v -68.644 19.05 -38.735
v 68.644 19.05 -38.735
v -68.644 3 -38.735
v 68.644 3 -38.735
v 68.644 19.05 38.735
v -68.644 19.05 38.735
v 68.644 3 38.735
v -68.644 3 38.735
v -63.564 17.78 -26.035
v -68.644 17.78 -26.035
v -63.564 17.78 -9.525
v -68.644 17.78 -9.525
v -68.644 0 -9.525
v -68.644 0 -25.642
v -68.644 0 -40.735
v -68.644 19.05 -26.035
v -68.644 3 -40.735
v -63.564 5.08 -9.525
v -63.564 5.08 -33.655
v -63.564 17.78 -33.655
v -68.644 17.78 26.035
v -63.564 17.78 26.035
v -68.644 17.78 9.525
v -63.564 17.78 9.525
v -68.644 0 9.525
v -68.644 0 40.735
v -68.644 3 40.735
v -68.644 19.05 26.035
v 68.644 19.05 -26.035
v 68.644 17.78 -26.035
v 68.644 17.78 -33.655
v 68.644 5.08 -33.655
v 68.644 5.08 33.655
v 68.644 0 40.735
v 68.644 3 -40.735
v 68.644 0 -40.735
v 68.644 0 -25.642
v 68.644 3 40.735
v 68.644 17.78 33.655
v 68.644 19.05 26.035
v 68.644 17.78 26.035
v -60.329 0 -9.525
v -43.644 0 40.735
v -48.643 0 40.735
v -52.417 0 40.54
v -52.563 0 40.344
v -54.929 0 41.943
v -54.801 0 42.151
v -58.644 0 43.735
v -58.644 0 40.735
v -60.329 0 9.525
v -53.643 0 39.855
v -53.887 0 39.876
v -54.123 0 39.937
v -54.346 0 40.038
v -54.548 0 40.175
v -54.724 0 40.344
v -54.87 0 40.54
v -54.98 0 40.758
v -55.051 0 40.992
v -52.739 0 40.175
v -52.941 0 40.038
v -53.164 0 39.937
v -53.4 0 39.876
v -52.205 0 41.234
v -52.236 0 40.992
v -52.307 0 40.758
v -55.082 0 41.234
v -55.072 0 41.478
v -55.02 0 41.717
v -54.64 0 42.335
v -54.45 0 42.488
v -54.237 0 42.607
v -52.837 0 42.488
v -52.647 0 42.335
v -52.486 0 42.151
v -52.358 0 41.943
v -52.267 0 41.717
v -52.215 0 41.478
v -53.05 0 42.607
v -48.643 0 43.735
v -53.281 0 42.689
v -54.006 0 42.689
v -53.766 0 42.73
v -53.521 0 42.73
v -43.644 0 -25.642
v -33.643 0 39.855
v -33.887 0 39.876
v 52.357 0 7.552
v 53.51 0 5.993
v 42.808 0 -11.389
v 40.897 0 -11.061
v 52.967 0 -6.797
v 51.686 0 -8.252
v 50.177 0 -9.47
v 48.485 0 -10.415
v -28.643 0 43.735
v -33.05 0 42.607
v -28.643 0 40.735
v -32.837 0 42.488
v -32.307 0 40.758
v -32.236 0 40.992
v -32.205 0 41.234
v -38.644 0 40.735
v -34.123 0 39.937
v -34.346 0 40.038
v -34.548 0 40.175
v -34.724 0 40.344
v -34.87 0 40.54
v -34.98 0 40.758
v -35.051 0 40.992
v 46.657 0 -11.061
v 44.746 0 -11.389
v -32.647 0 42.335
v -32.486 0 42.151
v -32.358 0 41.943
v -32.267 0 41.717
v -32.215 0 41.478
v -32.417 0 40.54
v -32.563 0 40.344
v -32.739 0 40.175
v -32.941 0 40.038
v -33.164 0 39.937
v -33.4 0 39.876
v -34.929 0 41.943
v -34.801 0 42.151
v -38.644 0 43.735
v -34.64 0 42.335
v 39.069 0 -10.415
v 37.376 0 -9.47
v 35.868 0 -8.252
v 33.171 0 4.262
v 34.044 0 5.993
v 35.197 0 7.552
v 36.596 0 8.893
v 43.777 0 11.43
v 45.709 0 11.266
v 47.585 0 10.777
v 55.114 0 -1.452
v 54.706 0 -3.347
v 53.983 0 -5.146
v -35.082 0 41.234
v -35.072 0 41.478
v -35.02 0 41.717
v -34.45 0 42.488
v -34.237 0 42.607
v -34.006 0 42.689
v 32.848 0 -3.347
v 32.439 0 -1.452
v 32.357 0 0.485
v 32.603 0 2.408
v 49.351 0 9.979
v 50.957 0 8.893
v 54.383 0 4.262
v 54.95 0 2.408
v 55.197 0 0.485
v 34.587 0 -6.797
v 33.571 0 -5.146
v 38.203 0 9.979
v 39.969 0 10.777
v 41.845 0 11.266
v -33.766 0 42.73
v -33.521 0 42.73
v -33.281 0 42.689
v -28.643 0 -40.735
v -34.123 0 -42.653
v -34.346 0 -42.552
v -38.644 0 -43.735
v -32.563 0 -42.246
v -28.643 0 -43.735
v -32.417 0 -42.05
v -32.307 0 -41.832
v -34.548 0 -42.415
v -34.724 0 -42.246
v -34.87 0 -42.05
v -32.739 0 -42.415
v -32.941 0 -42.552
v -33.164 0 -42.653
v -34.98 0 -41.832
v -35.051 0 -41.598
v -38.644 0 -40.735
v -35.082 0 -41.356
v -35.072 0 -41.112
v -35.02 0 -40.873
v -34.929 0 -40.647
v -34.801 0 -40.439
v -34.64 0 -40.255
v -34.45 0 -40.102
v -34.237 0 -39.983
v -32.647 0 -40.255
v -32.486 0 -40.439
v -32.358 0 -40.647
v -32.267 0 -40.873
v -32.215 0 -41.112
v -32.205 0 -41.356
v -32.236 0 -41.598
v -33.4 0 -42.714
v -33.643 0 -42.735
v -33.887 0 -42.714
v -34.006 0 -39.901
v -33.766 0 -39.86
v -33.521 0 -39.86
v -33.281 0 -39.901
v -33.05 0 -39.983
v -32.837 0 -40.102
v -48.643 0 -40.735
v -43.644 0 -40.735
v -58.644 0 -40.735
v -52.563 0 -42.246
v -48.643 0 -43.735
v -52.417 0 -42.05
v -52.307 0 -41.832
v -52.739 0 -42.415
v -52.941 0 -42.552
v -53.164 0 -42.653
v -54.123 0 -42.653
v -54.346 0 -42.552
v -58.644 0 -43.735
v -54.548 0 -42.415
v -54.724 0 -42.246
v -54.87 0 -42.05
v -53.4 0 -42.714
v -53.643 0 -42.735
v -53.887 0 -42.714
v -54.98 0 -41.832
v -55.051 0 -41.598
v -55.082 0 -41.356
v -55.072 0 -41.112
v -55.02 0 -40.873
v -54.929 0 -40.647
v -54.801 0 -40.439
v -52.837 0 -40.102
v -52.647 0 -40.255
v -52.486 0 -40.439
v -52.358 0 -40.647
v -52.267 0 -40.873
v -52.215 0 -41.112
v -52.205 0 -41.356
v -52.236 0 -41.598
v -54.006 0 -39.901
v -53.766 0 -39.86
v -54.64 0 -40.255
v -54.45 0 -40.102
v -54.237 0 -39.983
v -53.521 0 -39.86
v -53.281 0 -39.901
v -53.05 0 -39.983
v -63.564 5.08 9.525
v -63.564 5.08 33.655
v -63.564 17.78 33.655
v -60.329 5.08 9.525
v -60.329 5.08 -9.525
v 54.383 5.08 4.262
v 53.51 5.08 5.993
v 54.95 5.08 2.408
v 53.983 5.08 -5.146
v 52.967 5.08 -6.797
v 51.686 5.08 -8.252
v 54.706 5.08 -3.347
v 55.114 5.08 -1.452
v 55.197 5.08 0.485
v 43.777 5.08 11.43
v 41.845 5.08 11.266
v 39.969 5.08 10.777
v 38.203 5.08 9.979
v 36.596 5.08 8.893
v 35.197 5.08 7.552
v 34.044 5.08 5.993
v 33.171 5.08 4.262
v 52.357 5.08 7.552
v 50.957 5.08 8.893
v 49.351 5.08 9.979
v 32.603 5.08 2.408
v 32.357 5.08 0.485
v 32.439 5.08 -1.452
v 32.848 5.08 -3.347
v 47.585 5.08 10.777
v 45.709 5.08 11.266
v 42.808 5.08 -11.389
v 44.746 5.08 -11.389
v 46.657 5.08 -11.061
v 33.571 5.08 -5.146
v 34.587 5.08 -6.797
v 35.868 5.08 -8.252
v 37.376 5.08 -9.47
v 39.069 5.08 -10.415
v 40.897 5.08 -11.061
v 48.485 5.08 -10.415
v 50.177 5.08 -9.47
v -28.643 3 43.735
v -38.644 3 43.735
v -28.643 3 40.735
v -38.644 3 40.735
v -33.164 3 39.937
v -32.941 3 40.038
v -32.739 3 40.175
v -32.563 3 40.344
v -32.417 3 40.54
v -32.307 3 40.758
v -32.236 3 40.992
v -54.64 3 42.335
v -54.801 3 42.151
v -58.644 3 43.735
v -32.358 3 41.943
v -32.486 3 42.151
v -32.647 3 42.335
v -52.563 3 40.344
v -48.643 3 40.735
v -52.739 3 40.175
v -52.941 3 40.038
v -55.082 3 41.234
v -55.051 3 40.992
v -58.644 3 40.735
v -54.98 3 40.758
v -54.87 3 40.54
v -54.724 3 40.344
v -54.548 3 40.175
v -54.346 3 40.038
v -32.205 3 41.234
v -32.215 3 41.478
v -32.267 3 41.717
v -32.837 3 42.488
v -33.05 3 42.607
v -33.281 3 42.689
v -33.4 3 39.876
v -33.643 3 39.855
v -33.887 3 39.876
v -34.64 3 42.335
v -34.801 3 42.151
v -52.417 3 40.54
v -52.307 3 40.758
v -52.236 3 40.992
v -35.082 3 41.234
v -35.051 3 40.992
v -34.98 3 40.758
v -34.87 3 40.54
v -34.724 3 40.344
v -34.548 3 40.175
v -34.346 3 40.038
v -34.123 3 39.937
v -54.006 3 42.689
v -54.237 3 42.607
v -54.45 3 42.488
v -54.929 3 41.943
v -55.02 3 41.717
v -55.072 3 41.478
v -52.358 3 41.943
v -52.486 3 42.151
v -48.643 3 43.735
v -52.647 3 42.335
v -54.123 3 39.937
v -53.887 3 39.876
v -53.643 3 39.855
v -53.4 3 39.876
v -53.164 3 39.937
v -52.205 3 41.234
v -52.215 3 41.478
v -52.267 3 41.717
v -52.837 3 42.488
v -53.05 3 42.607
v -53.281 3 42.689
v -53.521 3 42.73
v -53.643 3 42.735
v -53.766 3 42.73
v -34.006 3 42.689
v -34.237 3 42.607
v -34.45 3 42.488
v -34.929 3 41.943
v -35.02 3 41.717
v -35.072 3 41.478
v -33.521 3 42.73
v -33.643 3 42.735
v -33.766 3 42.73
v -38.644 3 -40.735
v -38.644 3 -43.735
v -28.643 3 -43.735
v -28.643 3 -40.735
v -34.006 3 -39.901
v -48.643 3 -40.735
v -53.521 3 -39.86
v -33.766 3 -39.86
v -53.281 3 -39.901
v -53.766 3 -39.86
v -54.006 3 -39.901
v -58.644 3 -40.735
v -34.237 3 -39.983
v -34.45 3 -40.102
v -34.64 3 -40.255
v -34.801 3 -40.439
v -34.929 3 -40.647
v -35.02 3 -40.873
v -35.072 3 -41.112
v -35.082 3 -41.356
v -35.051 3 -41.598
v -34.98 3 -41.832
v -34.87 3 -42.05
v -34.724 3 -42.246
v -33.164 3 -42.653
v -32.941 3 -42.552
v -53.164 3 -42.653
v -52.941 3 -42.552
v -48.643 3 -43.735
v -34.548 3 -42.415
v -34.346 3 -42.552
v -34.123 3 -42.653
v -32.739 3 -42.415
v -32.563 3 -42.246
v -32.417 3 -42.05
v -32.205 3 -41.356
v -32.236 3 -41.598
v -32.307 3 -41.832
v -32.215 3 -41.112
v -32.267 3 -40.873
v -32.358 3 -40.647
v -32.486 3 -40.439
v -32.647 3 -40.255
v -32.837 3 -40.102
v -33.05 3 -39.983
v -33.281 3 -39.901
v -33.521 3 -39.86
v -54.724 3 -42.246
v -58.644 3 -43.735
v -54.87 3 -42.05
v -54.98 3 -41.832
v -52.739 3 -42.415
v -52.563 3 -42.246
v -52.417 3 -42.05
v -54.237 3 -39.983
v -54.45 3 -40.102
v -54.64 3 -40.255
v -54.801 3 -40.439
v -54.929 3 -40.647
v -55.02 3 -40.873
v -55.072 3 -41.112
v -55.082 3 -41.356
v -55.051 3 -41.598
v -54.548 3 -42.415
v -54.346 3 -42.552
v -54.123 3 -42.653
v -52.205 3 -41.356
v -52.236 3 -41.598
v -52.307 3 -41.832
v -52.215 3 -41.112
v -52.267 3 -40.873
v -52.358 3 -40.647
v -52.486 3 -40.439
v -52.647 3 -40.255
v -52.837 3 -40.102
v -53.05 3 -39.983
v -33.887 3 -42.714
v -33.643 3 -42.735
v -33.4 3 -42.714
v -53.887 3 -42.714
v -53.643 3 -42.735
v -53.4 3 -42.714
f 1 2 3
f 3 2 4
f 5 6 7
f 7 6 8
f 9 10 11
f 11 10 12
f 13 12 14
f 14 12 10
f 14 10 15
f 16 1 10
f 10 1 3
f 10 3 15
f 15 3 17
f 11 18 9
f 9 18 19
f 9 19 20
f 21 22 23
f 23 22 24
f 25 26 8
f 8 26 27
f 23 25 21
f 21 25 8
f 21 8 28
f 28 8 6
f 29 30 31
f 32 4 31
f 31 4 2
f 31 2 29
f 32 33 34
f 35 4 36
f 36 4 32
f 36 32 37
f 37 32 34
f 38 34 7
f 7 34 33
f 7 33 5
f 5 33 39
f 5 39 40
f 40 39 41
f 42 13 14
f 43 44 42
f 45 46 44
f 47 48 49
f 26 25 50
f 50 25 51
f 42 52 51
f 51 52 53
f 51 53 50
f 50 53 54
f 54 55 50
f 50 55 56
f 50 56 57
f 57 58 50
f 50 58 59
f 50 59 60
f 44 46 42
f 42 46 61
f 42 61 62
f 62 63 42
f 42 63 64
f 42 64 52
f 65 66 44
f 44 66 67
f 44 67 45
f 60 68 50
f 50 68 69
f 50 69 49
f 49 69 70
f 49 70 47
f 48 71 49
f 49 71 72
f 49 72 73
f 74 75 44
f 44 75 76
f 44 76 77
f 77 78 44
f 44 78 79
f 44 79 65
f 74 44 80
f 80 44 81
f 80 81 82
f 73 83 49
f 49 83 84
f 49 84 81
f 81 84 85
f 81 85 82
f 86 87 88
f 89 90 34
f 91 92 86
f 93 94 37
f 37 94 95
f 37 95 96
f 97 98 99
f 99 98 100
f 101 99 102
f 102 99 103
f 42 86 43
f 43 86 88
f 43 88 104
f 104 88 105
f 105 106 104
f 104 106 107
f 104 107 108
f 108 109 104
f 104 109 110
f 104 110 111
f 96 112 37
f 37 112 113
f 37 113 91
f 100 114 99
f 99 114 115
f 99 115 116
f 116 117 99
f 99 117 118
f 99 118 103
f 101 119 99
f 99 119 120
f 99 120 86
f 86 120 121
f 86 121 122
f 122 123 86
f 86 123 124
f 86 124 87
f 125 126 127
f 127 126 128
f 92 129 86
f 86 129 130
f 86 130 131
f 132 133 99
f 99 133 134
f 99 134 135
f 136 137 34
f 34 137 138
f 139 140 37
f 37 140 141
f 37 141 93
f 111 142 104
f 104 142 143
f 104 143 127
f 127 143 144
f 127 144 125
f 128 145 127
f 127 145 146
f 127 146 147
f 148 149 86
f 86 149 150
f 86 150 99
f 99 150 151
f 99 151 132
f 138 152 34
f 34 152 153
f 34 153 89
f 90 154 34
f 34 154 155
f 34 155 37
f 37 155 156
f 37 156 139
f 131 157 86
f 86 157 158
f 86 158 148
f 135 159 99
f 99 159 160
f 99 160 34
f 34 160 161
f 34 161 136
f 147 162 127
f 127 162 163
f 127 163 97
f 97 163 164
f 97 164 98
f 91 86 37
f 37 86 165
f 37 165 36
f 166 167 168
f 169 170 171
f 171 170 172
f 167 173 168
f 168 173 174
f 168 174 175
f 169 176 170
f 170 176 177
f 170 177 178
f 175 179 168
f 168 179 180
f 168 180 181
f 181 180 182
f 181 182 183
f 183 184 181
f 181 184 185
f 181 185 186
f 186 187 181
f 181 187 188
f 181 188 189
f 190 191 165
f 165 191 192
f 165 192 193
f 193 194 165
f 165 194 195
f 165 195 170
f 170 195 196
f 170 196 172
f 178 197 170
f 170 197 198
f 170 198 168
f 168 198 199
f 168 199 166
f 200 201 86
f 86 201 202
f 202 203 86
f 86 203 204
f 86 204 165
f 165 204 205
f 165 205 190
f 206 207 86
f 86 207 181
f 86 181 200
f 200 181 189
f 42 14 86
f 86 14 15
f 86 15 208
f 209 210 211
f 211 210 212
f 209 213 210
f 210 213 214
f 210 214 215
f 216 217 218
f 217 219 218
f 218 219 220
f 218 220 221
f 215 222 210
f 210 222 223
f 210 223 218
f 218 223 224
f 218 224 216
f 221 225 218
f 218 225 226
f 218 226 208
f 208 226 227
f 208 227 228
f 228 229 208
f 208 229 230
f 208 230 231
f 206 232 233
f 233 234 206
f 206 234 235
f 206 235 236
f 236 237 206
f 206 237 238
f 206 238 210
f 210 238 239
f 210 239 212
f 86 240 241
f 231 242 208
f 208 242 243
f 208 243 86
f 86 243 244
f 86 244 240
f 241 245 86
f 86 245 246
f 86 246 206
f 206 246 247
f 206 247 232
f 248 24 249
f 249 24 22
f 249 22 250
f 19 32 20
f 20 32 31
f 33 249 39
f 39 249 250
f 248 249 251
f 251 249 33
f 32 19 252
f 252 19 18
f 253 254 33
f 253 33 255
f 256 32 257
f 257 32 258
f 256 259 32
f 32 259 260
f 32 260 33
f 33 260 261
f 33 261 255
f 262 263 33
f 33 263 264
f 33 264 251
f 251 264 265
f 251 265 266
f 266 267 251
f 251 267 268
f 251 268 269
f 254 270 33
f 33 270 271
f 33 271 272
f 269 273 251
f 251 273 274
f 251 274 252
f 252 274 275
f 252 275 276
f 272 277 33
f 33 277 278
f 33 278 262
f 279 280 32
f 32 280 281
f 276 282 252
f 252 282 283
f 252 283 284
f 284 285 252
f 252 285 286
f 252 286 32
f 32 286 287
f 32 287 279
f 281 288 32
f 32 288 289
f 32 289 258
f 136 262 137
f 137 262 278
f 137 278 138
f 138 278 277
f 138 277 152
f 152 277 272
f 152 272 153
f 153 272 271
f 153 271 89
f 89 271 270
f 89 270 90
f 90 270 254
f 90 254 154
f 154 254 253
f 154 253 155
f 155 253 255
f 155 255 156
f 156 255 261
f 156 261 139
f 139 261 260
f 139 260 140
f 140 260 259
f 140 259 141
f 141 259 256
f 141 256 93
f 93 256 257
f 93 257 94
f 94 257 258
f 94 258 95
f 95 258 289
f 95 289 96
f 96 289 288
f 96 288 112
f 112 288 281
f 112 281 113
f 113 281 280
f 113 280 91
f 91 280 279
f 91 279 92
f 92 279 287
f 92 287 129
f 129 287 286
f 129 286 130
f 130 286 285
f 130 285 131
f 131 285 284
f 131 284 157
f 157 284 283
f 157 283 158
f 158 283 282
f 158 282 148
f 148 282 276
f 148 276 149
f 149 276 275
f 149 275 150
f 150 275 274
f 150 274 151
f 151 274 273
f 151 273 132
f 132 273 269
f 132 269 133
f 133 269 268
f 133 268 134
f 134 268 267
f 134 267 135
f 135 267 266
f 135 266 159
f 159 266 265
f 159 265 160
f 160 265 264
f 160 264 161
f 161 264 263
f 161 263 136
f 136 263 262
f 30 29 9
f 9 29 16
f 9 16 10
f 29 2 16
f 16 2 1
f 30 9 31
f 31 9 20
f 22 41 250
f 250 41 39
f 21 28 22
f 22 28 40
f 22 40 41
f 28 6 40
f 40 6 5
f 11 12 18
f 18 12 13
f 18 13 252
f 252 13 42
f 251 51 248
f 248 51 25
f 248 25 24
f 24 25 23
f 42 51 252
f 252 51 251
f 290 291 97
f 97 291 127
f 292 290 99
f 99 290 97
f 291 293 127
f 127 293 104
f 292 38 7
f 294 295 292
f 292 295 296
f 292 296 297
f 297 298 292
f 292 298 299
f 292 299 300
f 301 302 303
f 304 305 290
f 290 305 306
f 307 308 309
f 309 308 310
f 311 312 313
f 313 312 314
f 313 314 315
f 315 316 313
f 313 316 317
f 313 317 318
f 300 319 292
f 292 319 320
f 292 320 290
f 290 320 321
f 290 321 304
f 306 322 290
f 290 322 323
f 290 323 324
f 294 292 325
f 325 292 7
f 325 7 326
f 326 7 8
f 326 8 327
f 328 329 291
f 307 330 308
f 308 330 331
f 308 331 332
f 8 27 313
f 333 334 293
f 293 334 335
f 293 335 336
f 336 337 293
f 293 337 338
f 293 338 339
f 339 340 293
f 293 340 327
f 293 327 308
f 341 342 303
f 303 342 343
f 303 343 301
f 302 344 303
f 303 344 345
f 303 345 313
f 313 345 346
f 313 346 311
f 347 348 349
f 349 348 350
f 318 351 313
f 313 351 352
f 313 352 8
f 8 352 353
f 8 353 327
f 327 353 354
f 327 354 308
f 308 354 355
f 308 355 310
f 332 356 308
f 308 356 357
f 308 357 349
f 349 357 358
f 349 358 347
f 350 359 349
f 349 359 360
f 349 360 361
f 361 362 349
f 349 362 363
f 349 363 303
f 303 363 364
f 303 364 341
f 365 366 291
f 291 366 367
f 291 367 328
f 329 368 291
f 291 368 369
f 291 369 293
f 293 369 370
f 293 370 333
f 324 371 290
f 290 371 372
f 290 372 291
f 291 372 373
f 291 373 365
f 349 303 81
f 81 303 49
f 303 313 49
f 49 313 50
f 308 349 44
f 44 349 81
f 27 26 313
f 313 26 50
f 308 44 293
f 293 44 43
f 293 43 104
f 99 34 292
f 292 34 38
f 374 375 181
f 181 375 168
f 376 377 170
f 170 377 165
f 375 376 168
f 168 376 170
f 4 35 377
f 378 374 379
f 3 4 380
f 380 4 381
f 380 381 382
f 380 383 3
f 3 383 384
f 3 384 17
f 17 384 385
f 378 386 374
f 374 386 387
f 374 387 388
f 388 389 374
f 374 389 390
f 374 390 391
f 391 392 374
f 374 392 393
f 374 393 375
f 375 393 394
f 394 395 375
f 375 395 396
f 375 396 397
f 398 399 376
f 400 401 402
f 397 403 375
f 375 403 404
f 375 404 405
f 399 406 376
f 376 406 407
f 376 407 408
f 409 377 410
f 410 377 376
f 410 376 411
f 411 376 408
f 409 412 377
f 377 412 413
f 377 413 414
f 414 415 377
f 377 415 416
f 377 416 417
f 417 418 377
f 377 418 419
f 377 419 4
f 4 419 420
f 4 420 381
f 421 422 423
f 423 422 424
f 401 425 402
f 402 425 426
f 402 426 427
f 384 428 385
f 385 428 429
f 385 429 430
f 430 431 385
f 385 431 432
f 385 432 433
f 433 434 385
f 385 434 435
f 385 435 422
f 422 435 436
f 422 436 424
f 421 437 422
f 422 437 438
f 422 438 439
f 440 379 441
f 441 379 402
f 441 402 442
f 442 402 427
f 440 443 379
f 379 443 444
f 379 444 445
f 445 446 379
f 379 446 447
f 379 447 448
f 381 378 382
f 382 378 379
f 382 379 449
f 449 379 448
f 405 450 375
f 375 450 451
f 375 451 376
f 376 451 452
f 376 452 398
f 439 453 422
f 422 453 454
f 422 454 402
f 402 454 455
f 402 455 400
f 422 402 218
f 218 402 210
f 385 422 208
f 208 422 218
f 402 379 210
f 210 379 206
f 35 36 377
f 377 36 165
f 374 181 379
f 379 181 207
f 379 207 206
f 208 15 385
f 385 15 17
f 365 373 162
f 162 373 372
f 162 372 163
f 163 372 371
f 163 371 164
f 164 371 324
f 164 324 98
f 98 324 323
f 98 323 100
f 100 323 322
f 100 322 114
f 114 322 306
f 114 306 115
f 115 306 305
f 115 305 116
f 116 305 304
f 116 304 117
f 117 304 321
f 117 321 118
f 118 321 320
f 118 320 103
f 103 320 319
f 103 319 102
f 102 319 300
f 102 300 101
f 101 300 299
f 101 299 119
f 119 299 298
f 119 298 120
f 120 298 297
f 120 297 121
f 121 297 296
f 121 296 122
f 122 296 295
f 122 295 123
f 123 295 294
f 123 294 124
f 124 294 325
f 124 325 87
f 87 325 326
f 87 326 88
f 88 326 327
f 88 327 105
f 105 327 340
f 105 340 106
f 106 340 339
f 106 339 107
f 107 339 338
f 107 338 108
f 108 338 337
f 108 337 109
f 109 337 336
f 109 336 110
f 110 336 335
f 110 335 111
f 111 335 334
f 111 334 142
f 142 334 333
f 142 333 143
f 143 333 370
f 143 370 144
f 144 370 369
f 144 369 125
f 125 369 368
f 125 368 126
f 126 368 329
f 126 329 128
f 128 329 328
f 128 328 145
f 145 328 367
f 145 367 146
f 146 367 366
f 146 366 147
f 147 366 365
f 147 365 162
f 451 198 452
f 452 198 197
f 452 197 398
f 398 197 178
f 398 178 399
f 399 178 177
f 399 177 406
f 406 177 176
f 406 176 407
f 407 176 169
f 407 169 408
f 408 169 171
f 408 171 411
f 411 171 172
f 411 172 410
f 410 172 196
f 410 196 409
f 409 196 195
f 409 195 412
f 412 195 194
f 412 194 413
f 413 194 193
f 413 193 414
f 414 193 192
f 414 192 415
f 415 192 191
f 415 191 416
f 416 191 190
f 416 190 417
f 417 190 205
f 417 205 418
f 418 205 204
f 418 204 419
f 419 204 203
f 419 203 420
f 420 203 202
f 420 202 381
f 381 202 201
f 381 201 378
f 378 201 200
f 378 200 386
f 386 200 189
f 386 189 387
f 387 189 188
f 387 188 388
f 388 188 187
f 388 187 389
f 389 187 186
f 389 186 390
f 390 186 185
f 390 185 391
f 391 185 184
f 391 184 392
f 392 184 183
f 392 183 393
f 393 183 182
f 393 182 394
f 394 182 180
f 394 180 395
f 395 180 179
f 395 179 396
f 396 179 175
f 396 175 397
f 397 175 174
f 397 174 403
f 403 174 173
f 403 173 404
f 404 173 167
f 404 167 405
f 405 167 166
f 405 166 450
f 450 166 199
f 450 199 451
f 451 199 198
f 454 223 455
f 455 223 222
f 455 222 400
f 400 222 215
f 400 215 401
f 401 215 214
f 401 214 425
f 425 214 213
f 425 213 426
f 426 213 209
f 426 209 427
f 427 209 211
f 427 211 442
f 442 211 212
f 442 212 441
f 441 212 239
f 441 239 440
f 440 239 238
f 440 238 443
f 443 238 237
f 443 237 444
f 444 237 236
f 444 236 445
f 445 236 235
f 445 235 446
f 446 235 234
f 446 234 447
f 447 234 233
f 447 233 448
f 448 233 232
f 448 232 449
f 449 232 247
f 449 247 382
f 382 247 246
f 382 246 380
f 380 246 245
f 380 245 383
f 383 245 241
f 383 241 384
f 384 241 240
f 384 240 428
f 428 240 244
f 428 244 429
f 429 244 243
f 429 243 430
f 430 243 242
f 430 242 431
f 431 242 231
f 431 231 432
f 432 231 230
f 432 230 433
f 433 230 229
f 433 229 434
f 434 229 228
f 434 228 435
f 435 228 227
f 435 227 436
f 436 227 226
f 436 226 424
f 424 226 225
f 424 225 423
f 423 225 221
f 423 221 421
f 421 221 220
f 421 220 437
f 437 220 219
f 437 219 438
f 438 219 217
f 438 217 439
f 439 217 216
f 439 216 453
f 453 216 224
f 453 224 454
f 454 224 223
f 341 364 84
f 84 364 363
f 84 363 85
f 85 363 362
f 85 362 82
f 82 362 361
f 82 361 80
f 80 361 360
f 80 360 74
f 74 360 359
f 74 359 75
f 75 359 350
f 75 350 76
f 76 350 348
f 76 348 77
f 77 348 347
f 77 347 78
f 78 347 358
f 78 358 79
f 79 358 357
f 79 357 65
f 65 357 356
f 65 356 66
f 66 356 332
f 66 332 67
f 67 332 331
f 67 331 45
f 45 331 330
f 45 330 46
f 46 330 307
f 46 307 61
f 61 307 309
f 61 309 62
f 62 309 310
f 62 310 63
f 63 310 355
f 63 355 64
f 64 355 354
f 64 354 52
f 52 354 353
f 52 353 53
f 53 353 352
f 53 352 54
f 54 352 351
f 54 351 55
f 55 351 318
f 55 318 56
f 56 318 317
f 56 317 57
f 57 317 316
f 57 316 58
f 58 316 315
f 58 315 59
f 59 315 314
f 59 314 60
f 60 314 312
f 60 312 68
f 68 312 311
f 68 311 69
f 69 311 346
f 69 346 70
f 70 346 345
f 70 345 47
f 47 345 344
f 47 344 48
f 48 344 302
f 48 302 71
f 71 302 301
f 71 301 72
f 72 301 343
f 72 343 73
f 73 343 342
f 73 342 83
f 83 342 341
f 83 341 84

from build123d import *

# Parameters (mm, degrees)
SKETCH1_W           = 137.287
SKETCH1_H           = 77.47
BOSS_EXTRUDE1_DEPTH = 17.78
SKETCH2_W           = 132.207
SKETCH2_H           = 67.31
CUT_EXTRUDE1_DEPTH  = 12.7
SKETCH4_R           = 11.43
CUT_EXTRUDE2_DEPTH  = 80.834956737
SKETCH5_W           = 137.287
SKETCH5_H           = 12.7
BOSS_EXTRUDE2_DEPTH = 1.27
SKETCH6_W           = 8.314266468
SKETCH6_H           = 19.05
CUT_EXTRUDE3_DEPTH  = 81.798878193
SKETCH9_W           = 137.287
SKETCH9_H           = 2
SKETCH9_W_2         = 10
SKETCH9_H_2         = 3
BOSS_EXTRUDE4_DEPTH = 3
SKETCH10_R          = 1.44
CUT_EXTRUDE4_DEPTH  = 84.591762855


with BuildPart() as part:
    # Sketch1 → Boss-Extrude1 (new body)
    with BuildSketch(Plane(origin=(0, 0, 0), x_dir=(1, 0, 0), z_dir=(0, 1, 0))):
        Rectangle(SKETCH1_W, SKETCH1_H)
    extrude(amount=BOSS_EXTRUDE1_DEPTH)

    # Sketch2 → Cut-Extrude1 (cut)
    with BuildSketch(Plane(origin=(0, 17.78, 0), x_dir=(1, 0, 0), z_dir=(0, 1, 0))):
        with Locations((2.54, 0)):
            Rectangle(SKETCH2_W, SKETCH2_H)
    extrude(amount=-CUT_EXTRUDE1_DEPTH, mode=Mode.SUBTRACT)

    # Sketch4 → Cut-Extrude2 (cut, through all)
    with BuildSketch(Plane(origin=(0, 5.08, 0), x_dir=(1, 0, 0), z_dir=(0, 1, 0))):
        with Locations(Location((43.7769, 0, 0), (0, 0, 270))):
            Circle(SKETCH4_R)
    extrude(amount=-CUT_EXTRUDE2_DEPTH, mode=Mode.SUBTRACT)

    # Sketch5 → Boss-Extrude2 (add)
    with BuildSketch(Plane(origin=(0, 17.78, 0), x_dir=(1, 0, 0), z_dir=(0, 1, 0))):
        with Locations((0, 32.385)):
            Rectangle(SKETCH5_W, SKETCH5_H)
        with Locations((0, -32.385)):
            Rectangle(SKETCH5_W, SKETCH5_H)
    extrude(amount=BOSS_EXTRUDE2_DEPTH)

    # Sketch6 → Cut-Extrude3 (cut, through all)
    with BuildSketch(Plane(origin=(0, 17.78, 0), x_dir=(1, 0, 0), z_dir=(0, 1, 0))):
        with Locations((-64.486366766, 0)):
            Rectangle(SKETCH6_W, SKETCH6_H)
    extrude(amount=-CUT_EXTRUDE3_DEPTH, mode=Mode.SUBTRACT)

    # Sketch9 → Boss-Extrude4 (add)
    with BuildSketch(Plane(origin=(0, 0, 0), x_dir=(-1, 0, 0), z_dir=(0, -1, 0))):
        with Locations((0, -39.735)):
            Rectangle(SKETCH9_W, SKETCH9_H)
        with Locations((0, 39.735)):
            Rectangle(SKETCH9_W, SKETCH9_H)
        with Locations((53.6435, -42.235)):
            Rectangle(SKETCH9_W_2, SKETCH9_H_2)
        with Locations((53.6435, 42.235)):
            Rectangle(SKETCH9_W_2, SKETCH9_H_2)
        with Locations((33.6435, -42.235)):
            Rectangle(SKETCH9_W_2, SKETCH9_H_2)
        with Locations((33.6435, 42.235)):
            Rectangle(SKETCH9_W_2, SKETCH9_H_2)
    extrude(amount=-BOSS_EXTRUDE4_DEPTH)

    # Sketch10 → Cut-Extrude4 (cut, through all)
    with BuildSketch(Plane(origin=(0, 0, 0), x_dir=(-1, 0, 0), z_dir=(0, -1, 0))):
        with Locations(Location((33.6435, -41.295, 0), (0, 0, 90))):
            Circle(SKETCH10_R)
        with Locations(Location((53.6435, -41.295, 0), (0, 0, 90))):
            Circle(SKETCH10_R)
        with Locations(Location((53.6435, 41.295, 0), (0, 0, 90))):
            Circle(SKETCH10_R)
        with Locations(Location((33.6435, 41.295, 0), (0, 0, 90))):
            Circle(SKETCH10_R)
    extrude(amount=-CUT_EXTRUDE4_DEPTH, mode=Mode.SUBTRACT)


solid = part.part
